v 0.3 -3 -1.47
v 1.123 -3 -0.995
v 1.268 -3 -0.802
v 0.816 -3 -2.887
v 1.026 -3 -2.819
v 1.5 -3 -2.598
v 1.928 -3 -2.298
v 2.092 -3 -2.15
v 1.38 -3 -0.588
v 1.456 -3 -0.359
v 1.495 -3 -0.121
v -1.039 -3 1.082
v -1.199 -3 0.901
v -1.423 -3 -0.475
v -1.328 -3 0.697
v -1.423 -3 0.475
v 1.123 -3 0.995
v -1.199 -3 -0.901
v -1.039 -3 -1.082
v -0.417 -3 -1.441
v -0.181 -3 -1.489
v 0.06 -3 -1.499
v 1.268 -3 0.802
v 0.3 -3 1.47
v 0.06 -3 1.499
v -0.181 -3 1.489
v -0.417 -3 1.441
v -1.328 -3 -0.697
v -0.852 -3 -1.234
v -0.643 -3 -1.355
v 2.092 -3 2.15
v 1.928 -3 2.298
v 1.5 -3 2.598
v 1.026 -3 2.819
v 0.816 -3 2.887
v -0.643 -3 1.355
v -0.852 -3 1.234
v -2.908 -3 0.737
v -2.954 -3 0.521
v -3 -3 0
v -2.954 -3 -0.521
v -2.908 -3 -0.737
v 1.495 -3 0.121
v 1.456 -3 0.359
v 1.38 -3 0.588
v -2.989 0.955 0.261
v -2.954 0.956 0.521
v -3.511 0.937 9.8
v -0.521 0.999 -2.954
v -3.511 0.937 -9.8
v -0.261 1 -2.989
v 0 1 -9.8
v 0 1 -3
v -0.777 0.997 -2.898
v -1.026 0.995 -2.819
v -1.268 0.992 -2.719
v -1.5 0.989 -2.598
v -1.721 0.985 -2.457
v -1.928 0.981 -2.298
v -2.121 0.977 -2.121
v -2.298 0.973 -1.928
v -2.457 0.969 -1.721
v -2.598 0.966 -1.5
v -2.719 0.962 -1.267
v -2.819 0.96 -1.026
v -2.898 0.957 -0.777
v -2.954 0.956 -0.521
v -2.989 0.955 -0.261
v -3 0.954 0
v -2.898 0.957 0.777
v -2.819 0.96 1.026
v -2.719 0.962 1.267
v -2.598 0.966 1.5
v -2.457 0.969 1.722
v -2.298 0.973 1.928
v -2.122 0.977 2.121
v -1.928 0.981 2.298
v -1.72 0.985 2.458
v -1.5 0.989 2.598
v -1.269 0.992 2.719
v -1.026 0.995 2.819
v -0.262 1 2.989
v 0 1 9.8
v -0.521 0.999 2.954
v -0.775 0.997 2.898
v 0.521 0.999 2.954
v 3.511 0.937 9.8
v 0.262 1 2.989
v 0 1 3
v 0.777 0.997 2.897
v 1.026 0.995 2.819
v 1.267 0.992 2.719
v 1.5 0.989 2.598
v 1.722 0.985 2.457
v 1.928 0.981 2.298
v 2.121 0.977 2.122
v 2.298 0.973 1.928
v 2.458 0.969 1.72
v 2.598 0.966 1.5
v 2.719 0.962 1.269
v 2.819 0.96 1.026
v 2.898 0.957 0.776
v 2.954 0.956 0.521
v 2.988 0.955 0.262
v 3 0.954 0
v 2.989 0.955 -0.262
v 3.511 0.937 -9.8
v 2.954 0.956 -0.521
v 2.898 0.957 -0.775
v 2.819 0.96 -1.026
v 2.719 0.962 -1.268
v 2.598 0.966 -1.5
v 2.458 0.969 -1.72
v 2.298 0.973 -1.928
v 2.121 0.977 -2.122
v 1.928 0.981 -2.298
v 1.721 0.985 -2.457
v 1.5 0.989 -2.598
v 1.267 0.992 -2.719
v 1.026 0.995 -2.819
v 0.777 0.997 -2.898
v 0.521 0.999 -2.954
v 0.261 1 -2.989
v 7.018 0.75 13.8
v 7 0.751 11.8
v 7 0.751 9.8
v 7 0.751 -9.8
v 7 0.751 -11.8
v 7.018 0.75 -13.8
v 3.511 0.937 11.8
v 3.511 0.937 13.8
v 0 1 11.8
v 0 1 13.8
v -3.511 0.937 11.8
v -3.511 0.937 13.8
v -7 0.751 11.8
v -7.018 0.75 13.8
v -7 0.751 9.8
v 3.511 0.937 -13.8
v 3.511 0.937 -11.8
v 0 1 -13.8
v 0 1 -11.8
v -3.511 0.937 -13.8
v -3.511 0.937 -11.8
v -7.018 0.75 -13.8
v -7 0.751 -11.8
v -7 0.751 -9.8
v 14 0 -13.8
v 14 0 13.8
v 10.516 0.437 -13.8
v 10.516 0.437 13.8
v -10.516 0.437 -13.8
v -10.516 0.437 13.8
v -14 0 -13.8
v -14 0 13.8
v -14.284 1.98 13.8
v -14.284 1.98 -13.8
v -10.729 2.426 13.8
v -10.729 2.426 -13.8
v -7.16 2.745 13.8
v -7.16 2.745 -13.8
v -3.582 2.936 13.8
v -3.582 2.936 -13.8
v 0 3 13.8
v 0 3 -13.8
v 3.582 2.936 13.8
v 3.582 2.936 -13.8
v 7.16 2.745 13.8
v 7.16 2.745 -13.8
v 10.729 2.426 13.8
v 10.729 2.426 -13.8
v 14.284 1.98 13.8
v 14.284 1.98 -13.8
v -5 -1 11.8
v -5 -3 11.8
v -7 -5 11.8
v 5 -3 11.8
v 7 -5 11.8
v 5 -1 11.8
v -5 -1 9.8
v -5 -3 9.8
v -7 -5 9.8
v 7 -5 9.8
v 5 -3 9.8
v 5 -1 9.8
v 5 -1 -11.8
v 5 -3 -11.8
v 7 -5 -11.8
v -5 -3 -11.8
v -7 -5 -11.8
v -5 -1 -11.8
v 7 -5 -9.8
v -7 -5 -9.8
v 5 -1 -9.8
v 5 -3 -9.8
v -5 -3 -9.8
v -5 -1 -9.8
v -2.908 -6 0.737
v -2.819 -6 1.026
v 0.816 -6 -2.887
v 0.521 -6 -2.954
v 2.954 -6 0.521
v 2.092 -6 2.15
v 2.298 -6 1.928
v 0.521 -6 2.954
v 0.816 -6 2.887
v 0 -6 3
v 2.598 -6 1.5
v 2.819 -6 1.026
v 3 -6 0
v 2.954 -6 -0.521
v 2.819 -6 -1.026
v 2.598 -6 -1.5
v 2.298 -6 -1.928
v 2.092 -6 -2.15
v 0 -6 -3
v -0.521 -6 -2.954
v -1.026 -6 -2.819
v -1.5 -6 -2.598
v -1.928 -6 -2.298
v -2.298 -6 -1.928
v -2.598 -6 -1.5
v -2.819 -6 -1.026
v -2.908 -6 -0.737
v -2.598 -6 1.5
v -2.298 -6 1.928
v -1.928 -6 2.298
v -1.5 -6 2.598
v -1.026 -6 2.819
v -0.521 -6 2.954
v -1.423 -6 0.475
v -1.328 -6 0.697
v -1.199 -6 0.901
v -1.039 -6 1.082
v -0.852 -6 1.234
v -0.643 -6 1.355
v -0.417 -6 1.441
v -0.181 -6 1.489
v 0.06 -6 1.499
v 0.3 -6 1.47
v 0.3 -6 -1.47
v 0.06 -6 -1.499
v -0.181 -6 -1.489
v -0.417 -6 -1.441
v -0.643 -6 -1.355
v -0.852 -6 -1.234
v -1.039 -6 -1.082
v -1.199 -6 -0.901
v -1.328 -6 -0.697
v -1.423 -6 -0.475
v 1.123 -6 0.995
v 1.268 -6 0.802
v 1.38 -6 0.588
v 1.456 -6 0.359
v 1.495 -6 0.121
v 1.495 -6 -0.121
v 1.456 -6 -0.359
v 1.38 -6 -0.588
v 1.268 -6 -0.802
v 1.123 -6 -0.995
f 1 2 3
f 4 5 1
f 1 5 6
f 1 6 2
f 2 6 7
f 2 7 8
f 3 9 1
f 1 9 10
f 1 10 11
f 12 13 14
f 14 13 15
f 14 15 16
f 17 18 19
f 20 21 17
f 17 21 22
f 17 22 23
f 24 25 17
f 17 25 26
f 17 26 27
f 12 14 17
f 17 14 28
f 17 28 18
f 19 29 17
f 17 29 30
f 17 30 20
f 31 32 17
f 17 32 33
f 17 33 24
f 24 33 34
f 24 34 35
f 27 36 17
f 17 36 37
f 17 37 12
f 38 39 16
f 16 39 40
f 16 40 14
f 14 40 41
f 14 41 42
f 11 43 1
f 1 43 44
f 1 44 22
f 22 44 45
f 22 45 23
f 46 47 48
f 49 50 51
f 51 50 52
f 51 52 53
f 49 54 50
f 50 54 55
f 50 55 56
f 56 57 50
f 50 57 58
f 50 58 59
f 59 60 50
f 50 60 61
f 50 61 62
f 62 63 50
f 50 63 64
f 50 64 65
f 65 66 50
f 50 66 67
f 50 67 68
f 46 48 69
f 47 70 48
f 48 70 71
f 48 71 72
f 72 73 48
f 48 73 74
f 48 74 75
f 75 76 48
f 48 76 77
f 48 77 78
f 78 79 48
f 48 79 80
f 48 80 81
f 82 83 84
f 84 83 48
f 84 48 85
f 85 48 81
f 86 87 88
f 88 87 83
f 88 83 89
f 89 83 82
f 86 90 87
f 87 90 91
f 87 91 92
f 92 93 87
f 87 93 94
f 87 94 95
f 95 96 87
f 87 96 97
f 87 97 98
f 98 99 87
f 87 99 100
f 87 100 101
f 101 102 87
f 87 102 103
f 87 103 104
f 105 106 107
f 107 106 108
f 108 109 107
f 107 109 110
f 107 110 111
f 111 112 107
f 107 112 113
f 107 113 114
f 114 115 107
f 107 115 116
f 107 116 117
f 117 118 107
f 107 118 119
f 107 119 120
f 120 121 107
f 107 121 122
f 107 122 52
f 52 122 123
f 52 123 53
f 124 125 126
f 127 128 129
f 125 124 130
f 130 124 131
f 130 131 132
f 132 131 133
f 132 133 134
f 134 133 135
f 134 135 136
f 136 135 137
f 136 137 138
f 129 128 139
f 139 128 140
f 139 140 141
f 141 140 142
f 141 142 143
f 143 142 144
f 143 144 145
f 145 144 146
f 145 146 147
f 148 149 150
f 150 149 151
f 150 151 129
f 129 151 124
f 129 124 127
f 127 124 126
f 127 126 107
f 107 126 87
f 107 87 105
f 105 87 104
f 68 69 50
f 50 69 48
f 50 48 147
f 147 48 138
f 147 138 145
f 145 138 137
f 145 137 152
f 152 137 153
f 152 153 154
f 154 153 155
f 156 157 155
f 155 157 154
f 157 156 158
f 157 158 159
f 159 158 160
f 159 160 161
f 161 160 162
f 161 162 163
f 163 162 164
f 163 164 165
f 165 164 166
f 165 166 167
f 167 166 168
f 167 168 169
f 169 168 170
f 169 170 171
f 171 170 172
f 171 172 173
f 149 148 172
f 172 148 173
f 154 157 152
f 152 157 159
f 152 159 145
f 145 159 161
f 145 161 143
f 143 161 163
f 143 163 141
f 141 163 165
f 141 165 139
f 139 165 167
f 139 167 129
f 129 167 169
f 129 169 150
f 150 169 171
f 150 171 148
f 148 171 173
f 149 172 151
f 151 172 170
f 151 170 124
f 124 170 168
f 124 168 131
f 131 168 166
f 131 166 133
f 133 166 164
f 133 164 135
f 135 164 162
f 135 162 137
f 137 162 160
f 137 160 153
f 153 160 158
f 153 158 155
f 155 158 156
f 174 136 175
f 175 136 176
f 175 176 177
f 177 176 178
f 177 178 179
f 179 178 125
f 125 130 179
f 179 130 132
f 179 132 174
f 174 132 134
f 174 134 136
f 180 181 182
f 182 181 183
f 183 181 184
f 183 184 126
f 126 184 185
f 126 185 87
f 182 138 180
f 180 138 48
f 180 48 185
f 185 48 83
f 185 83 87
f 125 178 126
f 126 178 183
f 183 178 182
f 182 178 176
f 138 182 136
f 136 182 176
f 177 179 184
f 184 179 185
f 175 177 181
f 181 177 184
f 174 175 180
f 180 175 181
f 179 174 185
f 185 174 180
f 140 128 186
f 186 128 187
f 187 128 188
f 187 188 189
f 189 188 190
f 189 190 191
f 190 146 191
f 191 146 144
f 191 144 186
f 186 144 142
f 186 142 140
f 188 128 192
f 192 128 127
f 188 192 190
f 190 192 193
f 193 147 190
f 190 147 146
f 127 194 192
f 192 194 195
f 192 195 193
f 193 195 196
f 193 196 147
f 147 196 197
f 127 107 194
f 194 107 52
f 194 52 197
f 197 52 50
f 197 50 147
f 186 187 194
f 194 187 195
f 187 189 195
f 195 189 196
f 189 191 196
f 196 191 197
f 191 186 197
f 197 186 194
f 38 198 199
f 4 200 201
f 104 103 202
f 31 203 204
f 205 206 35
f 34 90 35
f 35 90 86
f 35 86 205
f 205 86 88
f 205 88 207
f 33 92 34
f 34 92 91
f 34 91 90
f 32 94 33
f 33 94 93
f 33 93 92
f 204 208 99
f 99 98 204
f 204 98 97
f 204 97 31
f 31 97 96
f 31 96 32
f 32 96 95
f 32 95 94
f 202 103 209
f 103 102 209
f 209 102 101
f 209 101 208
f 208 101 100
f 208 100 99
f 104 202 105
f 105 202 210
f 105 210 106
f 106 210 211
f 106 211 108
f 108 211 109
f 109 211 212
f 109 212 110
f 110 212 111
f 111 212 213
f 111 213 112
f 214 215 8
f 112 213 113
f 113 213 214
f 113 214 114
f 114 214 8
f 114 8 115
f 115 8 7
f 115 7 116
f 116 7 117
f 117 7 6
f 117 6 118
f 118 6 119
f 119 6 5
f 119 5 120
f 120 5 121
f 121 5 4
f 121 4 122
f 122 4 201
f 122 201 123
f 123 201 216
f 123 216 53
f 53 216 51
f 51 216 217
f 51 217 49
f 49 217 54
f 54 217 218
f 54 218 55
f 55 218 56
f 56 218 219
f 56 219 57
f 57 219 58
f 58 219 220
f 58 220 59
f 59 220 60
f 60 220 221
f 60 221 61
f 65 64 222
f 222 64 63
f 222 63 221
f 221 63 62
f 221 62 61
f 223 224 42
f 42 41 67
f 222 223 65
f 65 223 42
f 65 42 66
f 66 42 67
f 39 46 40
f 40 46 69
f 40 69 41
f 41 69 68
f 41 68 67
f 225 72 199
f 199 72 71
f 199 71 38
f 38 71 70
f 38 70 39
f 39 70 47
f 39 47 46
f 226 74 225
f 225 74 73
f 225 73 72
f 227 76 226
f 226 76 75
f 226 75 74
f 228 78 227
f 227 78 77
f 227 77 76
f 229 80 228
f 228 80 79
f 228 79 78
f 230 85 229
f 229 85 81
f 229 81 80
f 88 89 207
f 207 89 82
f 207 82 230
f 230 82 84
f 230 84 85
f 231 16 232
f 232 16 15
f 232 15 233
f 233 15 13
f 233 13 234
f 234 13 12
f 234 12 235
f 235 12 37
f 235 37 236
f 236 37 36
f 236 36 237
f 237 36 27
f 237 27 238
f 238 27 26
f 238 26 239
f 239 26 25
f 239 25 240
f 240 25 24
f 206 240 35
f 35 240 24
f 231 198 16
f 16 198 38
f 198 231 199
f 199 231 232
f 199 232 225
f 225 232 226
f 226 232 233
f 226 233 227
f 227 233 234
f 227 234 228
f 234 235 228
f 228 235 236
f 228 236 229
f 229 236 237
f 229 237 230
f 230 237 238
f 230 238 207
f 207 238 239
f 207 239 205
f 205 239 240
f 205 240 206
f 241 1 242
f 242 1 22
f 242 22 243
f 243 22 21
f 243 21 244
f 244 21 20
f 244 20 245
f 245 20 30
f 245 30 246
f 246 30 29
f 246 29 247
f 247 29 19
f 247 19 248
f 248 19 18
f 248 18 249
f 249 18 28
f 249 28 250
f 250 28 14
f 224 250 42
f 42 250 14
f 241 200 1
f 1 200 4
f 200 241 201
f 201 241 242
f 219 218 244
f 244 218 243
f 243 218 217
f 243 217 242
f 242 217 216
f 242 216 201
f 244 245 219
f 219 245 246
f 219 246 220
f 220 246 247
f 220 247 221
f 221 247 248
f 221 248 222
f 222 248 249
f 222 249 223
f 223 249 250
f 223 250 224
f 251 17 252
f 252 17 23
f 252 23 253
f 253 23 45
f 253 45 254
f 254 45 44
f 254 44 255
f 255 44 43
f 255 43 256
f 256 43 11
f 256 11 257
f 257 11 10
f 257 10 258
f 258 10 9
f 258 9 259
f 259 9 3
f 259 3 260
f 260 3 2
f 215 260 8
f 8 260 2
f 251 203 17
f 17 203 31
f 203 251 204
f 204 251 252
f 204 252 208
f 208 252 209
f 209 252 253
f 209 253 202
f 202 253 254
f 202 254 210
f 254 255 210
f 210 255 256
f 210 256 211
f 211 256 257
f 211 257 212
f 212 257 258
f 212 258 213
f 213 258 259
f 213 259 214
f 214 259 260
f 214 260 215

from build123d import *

# Parameters (mm, degrees)
EXTRUDE_1_DEPTH      = 13.8
EXTRUDE_1_DEPTH_BACK = 13.8
EXTRUDE_START        = -2
SKETCH_2_W           = 14
SKETCH_2_H           = 6
SKETCH_2_W_2         = 10
SKETCH_2_H_2         = 2
EXTRUDE_2_DEPTH      = 2
EXTRUDE_3_DEPTH      = 1
EXTRUDE_3_DEPTH_BACK = 3
SKETCH_3_R           = 3
EXTRUDE_4_DEPTH      = 3


with BuildPart() as part:
    # Эскиз1 → Бобышка-Вытянуть1 (new, two sides: drawn at the far end of the back side and taken through both)
    with BuildSketch(Plane.XY.offset(-EXTRUDE_1_DEPTH_BACK)):
        with BuildLine():
            Line((-14, 0), (-14.284263959, 1.979695431))
            ThreePointArc((-14.284263959, 1.979695431), (0, 3), (14.284263959, 1.979695431))
            Line((14.284263959, 1.979695431), (14, 0))
            ThreePointArc((14, 0), (0, 1), (-14, 0))
        make_face()
    extrude(amount=EXTRUDE_1_DEPTH + EXTRUDE_1_DEPTH_BACK)

    # Эскиз2 → Бобышка-Вытянуть2 (add)
    with BuildSketch(Plane.XY.offset(13.8).offset(EXTRUDE_START)):
        with Locations((0, -2)):
            Rectangle(SKETCH_2_W, SKETCH_2_H)
        with Locations((0, -2)):
            Rectangle(SKETCH_2_W_2, SKETCH_2_H_2, mode=Mode.SUBTRACT)
    extrude_2 = extrude(amount=-EXTRUDE_2_DEPTH)

    # Зеркальное отражение1: Бобышка-Вытянуть2 across plane
    add(extrude_2.mirror(Plane.XY))

    # Эскиз3 → Бобышка-Вытянуть3 (add, two sides: drawn at the far end of the back side and taken through both)
    with BuildSketch(Plane(origin=(0, 0, 0), x_dir=(1, 0, 0), z_dir=(0, 1, 0)).offset(-EXTRUDE_3_DEPTH_BACK)):
        with Locations(Location((0, 0, 0), (0, 0, 270))):
            Circle(SKETCH_3_R)
    extrude(amount=EXTRUDE_3_DEPTH + EXTRUDE_3_DEPTH_BACK)

    # Эскиз4 → Бобышка-Вытянуть4 (add)
    with BuildSketch(Plane(origin=(0, -3, 0), x_dir=(-1, 0, 0), z_dir=(0, -1, 0))):
        with BuildLine():
            Line((-1.122795001, -0.994651388), (-2.092247595, -2.15))
            ThreePointArc((-2.092247595, -2.15), (-3, 0), (-2.092247595, 2.15))
            Line((-2.092247595, 2.15), (-1.122795001, 0.994651388))
            ThreePointArc((-1.122795001, 0.994651388), (-1.5, 0), (-1.122795001, -0.994651388))
        make_face()
        with BuildLine():
            Line((1.422790871, 0.4750433), (2.908078416, 0.736939569))
            ThreePointArc((2.908078416, 0.736939569), (1.5, 2.598076211), (-0.81583082, 2.886939569))
            Line((-0.81583082, 2.886939569), (-0.29999587, 1.469694689))
            ThreePointArc((-0.29999587, 1.469694689), (0.75, 1.299038106), (1.422790871, 0.4750433))
        make_face()
        with BuildLine():
            Line((-0.29999587, -1.469694689), (-0.81583082, -2.886939569))
            ThreePointArc((-0.81583082, -2.886939569), (1.5, -2.598076211), (2.908078416, -0.736939569))
            Line((2.908078416, -0.736939569), (1.422790871, -0.4750433))
            ThreePointArc((1.422790871, -0.4750433), (0.75, -1.299038106), (-0.29999587, -1.469694689))
        make_face()
    extrude(amount=EXTRUDE_4_DEPTH)


solid = part.part
